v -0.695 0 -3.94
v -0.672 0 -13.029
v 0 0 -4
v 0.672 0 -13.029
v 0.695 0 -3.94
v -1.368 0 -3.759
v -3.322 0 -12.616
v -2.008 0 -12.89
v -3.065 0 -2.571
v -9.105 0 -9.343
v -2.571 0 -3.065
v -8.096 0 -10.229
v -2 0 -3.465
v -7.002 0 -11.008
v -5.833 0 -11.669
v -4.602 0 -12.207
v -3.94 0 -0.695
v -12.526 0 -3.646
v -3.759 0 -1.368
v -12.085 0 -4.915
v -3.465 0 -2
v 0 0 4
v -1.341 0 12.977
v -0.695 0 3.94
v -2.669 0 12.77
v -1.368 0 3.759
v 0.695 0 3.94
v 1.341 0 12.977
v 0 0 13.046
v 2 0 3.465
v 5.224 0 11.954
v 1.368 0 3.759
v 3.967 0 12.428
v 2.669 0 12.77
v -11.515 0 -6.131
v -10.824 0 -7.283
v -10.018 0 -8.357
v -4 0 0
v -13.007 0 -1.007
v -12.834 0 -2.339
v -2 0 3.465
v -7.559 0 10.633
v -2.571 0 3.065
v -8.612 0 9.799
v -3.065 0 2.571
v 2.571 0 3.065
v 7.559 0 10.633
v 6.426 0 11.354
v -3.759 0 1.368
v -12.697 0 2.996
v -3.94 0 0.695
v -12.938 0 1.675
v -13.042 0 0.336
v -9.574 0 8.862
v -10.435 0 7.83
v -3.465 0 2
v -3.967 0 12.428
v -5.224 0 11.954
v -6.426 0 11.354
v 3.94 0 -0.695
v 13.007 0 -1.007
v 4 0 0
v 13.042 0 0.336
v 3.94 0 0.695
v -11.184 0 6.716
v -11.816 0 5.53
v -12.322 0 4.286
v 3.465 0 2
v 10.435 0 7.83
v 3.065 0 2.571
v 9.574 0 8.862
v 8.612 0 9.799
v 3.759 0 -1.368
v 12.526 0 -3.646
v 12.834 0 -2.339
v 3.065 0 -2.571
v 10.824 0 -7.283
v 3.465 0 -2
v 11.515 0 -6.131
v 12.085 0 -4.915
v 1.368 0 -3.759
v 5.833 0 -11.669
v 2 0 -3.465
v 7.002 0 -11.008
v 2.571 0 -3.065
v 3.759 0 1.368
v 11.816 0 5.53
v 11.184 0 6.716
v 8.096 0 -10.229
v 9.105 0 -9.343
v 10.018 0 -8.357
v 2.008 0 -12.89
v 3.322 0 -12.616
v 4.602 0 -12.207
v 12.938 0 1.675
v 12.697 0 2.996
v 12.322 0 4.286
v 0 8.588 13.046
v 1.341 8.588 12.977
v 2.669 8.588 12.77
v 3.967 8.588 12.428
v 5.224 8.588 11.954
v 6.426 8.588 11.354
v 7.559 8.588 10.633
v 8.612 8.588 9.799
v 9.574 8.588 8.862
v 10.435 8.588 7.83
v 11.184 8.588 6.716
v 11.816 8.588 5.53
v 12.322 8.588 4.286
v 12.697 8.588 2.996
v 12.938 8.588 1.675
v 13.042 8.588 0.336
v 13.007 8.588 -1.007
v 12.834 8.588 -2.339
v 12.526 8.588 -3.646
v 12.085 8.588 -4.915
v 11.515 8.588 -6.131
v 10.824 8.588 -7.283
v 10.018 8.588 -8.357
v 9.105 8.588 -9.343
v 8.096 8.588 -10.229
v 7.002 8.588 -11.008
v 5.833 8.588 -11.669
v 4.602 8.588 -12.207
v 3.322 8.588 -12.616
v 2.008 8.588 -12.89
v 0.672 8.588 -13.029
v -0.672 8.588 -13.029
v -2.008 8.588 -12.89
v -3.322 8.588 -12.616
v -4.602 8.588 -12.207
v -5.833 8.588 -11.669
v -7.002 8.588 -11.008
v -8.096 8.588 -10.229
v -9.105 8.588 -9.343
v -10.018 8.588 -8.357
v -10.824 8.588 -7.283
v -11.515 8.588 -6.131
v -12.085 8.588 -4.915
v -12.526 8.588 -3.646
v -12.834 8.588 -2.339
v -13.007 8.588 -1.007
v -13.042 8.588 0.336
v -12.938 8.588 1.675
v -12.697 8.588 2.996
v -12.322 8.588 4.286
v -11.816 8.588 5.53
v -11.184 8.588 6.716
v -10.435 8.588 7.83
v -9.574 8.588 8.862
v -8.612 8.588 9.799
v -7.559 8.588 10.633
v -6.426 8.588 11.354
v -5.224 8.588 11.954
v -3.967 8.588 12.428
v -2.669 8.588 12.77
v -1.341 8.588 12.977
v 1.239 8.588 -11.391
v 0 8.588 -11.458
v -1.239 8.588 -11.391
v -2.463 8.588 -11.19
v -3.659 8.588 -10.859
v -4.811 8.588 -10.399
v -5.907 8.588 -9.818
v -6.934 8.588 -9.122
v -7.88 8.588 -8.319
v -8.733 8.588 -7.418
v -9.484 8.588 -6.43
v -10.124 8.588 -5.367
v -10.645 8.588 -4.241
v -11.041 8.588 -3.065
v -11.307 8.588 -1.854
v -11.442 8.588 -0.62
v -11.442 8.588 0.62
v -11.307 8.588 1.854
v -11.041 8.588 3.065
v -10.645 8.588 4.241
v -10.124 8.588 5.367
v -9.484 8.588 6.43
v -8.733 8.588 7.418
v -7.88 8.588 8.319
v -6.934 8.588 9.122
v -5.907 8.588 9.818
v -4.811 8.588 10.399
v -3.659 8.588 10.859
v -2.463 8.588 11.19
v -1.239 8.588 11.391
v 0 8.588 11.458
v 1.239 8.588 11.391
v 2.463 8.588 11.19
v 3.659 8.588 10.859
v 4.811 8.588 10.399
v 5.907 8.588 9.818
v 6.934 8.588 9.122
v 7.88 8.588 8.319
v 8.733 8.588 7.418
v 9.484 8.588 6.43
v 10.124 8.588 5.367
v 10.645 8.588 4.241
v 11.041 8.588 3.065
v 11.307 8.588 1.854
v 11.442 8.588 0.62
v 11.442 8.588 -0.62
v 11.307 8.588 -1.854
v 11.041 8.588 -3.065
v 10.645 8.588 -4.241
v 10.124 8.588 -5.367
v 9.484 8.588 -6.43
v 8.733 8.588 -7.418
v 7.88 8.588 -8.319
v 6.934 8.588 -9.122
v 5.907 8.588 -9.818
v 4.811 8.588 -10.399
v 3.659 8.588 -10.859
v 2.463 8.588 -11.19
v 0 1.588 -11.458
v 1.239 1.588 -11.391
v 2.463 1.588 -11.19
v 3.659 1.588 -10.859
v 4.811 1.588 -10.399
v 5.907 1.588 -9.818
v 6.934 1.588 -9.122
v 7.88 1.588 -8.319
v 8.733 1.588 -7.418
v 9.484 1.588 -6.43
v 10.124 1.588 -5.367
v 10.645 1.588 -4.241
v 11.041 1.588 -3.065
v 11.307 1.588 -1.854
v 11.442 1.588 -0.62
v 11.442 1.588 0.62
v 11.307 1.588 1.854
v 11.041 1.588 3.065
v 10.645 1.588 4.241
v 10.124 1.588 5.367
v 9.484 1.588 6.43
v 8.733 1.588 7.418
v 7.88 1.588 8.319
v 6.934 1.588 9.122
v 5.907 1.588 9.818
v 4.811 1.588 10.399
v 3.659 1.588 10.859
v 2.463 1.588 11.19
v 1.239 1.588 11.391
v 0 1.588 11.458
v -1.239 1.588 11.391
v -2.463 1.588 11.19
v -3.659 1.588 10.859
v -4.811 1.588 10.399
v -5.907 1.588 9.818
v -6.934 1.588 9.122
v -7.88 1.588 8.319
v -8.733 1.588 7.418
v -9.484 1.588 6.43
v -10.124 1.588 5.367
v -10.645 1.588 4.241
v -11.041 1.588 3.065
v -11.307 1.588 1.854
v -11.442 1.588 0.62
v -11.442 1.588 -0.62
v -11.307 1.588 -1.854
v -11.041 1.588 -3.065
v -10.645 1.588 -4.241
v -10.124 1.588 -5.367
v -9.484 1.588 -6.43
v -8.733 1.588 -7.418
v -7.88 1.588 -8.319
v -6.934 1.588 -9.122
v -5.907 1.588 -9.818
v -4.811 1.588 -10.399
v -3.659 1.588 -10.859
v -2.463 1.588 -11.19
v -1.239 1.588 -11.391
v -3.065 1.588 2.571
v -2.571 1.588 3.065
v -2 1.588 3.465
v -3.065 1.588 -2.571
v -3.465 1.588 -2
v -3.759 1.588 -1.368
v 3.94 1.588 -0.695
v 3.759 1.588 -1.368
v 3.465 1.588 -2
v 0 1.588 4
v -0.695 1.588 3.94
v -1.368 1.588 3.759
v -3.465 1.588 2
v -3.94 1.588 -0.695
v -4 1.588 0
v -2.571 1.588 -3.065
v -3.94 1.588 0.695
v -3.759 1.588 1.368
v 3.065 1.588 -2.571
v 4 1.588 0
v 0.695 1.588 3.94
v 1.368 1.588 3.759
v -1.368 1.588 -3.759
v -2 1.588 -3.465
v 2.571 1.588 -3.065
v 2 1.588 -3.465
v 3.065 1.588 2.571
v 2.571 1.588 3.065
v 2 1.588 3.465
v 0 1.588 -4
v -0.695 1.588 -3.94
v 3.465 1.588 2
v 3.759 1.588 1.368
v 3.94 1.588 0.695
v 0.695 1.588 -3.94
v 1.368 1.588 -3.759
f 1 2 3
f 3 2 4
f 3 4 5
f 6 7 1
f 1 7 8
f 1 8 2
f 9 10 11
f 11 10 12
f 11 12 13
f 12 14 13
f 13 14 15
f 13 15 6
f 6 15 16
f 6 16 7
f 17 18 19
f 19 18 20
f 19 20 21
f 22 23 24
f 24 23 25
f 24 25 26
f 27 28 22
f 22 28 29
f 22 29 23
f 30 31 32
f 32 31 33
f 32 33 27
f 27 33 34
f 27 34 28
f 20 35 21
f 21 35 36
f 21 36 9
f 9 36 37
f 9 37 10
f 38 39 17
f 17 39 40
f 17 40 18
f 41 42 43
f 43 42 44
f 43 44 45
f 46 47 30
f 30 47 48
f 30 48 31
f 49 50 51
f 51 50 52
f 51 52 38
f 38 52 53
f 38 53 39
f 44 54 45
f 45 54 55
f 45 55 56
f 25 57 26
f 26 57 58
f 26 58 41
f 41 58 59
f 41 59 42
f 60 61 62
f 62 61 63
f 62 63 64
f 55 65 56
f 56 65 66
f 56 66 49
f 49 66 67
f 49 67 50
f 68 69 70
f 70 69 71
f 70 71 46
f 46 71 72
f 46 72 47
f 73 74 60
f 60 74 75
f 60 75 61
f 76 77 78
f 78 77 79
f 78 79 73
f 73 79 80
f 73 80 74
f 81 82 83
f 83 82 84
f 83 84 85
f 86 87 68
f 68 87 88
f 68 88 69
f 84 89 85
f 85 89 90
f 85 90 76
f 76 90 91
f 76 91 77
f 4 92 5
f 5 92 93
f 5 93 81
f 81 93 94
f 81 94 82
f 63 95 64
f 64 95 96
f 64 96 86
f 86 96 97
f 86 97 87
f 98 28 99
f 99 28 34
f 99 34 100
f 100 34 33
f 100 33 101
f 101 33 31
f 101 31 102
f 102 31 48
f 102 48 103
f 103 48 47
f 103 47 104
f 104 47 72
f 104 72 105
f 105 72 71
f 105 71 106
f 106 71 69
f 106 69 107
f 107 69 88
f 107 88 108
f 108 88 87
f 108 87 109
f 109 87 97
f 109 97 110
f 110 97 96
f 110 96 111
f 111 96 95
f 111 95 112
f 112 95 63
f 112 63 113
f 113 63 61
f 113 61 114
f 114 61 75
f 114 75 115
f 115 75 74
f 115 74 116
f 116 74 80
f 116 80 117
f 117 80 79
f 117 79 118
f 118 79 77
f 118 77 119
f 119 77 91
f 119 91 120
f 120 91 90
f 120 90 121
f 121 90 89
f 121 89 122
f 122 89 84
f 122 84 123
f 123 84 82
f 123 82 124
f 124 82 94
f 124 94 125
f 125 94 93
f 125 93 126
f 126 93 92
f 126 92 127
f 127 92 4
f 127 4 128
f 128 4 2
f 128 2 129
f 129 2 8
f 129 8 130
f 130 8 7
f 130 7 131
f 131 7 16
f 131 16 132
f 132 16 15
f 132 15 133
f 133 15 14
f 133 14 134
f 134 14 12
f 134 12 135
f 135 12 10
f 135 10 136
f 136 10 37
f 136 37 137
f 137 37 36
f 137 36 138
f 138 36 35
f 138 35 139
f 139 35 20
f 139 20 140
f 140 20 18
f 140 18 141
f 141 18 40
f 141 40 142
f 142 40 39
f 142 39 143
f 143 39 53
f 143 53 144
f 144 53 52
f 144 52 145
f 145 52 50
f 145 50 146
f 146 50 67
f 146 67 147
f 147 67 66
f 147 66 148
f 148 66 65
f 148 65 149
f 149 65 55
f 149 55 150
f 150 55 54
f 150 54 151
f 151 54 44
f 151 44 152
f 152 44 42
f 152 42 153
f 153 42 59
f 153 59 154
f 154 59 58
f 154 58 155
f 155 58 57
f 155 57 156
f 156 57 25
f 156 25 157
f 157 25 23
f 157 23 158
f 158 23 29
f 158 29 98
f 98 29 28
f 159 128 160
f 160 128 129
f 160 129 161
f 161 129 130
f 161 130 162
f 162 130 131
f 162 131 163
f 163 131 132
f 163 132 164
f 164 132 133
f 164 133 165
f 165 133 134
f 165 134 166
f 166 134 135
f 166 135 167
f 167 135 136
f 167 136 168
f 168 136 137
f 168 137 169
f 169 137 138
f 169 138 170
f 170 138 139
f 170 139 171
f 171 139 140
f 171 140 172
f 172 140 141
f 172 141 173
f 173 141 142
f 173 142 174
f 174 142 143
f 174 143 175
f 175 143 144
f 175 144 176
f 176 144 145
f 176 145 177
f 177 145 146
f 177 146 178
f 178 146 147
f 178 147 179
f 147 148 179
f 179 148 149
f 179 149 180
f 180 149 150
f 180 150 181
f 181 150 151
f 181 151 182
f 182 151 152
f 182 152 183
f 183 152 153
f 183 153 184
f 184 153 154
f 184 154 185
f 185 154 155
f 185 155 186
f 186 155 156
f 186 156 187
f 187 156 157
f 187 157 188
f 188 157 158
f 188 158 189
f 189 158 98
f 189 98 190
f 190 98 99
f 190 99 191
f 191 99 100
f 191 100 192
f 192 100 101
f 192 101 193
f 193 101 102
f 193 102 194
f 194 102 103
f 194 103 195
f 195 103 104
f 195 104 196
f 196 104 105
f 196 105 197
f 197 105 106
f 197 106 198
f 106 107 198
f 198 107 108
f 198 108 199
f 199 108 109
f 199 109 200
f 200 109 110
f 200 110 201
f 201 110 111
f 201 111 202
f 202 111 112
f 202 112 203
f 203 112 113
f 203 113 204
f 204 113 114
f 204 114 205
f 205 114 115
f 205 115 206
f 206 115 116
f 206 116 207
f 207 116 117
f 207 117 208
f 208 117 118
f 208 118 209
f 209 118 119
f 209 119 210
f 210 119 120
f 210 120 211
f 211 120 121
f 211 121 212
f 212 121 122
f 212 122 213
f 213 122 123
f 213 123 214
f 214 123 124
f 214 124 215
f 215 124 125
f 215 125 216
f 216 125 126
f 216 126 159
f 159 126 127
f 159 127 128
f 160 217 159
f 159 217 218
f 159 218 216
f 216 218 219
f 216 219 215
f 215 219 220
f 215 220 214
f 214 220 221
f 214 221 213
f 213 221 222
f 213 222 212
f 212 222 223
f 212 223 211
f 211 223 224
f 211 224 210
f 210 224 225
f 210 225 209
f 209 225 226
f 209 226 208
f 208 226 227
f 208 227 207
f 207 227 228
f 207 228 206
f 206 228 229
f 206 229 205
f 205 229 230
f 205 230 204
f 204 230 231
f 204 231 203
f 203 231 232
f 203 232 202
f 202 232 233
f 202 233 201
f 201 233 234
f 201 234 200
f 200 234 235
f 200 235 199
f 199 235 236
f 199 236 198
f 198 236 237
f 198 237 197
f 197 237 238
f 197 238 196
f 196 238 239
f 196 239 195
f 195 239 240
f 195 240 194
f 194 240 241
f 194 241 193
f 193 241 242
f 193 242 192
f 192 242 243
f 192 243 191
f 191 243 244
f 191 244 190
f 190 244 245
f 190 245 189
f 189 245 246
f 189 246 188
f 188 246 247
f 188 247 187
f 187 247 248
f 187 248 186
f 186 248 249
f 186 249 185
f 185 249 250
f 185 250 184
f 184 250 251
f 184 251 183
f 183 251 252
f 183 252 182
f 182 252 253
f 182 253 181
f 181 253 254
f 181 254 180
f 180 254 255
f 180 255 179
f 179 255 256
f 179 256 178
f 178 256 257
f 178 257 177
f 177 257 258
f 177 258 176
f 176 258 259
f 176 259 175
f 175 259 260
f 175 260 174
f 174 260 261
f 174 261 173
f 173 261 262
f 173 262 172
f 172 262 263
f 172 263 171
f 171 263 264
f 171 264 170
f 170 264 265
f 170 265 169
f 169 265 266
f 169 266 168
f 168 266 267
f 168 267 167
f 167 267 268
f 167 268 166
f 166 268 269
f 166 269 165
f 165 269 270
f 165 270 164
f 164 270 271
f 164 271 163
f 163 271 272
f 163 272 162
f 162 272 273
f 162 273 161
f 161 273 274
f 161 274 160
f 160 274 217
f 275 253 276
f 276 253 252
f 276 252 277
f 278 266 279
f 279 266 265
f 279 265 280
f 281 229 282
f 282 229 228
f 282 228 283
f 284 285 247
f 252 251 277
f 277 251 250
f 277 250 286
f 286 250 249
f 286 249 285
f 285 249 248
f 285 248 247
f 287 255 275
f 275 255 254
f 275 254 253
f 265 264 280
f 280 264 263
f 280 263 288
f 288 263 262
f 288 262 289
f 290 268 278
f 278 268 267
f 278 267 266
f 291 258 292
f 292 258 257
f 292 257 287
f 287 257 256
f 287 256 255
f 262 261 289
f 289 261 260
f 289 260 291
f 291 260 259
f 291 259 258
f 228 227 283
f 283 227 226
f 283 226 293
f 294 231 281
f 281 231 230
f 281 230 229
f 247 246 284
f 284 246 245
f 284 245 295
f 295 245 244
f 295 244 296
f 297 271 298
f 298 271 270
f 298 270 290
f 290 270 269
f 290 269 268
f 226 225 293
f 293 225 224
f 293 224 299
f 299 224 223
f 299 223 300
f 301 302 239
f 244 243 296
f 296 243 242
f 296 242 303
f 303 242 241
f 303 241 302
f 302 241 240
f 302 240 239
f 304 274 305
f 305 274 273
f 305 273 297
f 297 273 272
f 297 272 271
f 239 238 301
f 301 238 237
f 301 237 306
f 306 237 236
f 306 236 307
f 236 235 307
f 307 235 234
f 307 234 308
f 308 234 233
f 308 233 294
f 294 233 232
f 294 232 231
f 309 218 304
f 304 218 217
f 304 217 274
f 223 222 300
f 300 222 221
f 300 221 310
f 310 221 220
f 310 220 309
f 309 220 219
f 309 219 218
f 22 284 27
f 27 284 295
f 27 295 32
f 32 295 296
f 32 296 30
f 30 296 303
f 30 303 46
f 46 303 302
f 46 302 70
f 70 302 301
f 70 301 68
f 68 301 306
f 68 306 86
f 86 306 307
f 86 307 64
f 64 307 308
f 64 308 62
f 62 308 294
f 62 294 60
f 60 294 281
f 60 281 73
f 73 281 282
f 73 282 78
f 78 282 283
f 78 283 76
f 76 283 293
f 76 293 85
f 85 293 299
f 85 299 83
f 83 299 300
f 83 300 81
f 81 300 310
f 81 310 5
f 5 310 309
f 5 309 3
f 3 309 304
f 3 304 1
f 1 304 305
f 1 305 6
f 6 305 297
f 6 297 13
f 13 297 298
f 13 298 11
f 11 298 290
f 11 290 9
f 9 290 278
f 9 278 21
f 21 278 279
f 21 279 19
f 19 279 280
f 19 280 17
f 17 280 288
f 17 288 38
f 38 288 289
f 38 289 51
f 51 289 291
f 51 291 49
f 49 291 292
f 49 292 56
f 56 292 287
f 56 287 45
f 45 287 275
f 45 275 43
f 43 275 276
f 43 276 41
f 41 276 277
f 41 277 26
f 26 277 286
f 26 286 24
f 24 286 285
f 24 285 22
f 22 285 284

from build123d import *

# Parameters (mm, degrees)
SKETCH2_R           = 11.458333303
BOSS_EXTRUDE1_DEPTH = 1.5875
SKETCH5_R           = 13.045833303
BOSS_EXTRUDE4_DEPTH = 1.5875
BOSS_EXTRUDE5_START = 7
SKETCH5_4_R         = 13.045833303
SKETCH5_4_R_2       = 11.458333303
BOSS_EXTRUDE5_DEPTH = 7
SKETCH6_R           = 4.0005
CUT_EXTRUDE1_DEPTH  = 20.732904833


with BuildPart() as part:
    # Sketch2 → Boss-Extrude1 (new body)
    with BuildSketch(Plane(origin=(0, 0, 0), x_dir=(1, 0, 0), z_dir=(0, 1, 0))):
        Circle(SKETCH2_R)
    extrude(amount=BOSS_EXTRUDE1_DEPTH)

    # Sketch5 → Boss-Extrude4 (add)
    with BuildSketch(Plane(origin=(0, 1.5875, 0), x_dir=(1, 0, 0), z_dir=(0, 1, 0))):
        Circle(SKETCH5_R)
    extrude(amount=-BOSS_EXTRUDE4_DEPTH)

    # Sketch5<4> → Boss-Extrude5 (add)
    with BuildSketch(Plane(origin=(0, 1.5875, 0), x_dir=(1, 0, 0), z_dir=(0, 1, 0)).offset(BOSS_EXTRUDE5_START)):
        Circle(SKETCH5_4_R)
        Circle(SKETCH5_4_R_2, mode=Mode.SUBTRACT)
    extrude(amount=-BOSS_EXTRUDE5_DEPTH)

    # Sketch6 → Cut-Extrude1 (cut, through all)
    with BuildSketch(Plane(origin=(0, 1.5875, 0), x_dir=(1, 0, 0), z_dir=(0, 1, 0))):
        Circle(SKETCH6_R)
    extrude(amount=-CUT_EXTRUDE1_DEPTH, mode=Mode.SUBTRACT)


solid = part.part
